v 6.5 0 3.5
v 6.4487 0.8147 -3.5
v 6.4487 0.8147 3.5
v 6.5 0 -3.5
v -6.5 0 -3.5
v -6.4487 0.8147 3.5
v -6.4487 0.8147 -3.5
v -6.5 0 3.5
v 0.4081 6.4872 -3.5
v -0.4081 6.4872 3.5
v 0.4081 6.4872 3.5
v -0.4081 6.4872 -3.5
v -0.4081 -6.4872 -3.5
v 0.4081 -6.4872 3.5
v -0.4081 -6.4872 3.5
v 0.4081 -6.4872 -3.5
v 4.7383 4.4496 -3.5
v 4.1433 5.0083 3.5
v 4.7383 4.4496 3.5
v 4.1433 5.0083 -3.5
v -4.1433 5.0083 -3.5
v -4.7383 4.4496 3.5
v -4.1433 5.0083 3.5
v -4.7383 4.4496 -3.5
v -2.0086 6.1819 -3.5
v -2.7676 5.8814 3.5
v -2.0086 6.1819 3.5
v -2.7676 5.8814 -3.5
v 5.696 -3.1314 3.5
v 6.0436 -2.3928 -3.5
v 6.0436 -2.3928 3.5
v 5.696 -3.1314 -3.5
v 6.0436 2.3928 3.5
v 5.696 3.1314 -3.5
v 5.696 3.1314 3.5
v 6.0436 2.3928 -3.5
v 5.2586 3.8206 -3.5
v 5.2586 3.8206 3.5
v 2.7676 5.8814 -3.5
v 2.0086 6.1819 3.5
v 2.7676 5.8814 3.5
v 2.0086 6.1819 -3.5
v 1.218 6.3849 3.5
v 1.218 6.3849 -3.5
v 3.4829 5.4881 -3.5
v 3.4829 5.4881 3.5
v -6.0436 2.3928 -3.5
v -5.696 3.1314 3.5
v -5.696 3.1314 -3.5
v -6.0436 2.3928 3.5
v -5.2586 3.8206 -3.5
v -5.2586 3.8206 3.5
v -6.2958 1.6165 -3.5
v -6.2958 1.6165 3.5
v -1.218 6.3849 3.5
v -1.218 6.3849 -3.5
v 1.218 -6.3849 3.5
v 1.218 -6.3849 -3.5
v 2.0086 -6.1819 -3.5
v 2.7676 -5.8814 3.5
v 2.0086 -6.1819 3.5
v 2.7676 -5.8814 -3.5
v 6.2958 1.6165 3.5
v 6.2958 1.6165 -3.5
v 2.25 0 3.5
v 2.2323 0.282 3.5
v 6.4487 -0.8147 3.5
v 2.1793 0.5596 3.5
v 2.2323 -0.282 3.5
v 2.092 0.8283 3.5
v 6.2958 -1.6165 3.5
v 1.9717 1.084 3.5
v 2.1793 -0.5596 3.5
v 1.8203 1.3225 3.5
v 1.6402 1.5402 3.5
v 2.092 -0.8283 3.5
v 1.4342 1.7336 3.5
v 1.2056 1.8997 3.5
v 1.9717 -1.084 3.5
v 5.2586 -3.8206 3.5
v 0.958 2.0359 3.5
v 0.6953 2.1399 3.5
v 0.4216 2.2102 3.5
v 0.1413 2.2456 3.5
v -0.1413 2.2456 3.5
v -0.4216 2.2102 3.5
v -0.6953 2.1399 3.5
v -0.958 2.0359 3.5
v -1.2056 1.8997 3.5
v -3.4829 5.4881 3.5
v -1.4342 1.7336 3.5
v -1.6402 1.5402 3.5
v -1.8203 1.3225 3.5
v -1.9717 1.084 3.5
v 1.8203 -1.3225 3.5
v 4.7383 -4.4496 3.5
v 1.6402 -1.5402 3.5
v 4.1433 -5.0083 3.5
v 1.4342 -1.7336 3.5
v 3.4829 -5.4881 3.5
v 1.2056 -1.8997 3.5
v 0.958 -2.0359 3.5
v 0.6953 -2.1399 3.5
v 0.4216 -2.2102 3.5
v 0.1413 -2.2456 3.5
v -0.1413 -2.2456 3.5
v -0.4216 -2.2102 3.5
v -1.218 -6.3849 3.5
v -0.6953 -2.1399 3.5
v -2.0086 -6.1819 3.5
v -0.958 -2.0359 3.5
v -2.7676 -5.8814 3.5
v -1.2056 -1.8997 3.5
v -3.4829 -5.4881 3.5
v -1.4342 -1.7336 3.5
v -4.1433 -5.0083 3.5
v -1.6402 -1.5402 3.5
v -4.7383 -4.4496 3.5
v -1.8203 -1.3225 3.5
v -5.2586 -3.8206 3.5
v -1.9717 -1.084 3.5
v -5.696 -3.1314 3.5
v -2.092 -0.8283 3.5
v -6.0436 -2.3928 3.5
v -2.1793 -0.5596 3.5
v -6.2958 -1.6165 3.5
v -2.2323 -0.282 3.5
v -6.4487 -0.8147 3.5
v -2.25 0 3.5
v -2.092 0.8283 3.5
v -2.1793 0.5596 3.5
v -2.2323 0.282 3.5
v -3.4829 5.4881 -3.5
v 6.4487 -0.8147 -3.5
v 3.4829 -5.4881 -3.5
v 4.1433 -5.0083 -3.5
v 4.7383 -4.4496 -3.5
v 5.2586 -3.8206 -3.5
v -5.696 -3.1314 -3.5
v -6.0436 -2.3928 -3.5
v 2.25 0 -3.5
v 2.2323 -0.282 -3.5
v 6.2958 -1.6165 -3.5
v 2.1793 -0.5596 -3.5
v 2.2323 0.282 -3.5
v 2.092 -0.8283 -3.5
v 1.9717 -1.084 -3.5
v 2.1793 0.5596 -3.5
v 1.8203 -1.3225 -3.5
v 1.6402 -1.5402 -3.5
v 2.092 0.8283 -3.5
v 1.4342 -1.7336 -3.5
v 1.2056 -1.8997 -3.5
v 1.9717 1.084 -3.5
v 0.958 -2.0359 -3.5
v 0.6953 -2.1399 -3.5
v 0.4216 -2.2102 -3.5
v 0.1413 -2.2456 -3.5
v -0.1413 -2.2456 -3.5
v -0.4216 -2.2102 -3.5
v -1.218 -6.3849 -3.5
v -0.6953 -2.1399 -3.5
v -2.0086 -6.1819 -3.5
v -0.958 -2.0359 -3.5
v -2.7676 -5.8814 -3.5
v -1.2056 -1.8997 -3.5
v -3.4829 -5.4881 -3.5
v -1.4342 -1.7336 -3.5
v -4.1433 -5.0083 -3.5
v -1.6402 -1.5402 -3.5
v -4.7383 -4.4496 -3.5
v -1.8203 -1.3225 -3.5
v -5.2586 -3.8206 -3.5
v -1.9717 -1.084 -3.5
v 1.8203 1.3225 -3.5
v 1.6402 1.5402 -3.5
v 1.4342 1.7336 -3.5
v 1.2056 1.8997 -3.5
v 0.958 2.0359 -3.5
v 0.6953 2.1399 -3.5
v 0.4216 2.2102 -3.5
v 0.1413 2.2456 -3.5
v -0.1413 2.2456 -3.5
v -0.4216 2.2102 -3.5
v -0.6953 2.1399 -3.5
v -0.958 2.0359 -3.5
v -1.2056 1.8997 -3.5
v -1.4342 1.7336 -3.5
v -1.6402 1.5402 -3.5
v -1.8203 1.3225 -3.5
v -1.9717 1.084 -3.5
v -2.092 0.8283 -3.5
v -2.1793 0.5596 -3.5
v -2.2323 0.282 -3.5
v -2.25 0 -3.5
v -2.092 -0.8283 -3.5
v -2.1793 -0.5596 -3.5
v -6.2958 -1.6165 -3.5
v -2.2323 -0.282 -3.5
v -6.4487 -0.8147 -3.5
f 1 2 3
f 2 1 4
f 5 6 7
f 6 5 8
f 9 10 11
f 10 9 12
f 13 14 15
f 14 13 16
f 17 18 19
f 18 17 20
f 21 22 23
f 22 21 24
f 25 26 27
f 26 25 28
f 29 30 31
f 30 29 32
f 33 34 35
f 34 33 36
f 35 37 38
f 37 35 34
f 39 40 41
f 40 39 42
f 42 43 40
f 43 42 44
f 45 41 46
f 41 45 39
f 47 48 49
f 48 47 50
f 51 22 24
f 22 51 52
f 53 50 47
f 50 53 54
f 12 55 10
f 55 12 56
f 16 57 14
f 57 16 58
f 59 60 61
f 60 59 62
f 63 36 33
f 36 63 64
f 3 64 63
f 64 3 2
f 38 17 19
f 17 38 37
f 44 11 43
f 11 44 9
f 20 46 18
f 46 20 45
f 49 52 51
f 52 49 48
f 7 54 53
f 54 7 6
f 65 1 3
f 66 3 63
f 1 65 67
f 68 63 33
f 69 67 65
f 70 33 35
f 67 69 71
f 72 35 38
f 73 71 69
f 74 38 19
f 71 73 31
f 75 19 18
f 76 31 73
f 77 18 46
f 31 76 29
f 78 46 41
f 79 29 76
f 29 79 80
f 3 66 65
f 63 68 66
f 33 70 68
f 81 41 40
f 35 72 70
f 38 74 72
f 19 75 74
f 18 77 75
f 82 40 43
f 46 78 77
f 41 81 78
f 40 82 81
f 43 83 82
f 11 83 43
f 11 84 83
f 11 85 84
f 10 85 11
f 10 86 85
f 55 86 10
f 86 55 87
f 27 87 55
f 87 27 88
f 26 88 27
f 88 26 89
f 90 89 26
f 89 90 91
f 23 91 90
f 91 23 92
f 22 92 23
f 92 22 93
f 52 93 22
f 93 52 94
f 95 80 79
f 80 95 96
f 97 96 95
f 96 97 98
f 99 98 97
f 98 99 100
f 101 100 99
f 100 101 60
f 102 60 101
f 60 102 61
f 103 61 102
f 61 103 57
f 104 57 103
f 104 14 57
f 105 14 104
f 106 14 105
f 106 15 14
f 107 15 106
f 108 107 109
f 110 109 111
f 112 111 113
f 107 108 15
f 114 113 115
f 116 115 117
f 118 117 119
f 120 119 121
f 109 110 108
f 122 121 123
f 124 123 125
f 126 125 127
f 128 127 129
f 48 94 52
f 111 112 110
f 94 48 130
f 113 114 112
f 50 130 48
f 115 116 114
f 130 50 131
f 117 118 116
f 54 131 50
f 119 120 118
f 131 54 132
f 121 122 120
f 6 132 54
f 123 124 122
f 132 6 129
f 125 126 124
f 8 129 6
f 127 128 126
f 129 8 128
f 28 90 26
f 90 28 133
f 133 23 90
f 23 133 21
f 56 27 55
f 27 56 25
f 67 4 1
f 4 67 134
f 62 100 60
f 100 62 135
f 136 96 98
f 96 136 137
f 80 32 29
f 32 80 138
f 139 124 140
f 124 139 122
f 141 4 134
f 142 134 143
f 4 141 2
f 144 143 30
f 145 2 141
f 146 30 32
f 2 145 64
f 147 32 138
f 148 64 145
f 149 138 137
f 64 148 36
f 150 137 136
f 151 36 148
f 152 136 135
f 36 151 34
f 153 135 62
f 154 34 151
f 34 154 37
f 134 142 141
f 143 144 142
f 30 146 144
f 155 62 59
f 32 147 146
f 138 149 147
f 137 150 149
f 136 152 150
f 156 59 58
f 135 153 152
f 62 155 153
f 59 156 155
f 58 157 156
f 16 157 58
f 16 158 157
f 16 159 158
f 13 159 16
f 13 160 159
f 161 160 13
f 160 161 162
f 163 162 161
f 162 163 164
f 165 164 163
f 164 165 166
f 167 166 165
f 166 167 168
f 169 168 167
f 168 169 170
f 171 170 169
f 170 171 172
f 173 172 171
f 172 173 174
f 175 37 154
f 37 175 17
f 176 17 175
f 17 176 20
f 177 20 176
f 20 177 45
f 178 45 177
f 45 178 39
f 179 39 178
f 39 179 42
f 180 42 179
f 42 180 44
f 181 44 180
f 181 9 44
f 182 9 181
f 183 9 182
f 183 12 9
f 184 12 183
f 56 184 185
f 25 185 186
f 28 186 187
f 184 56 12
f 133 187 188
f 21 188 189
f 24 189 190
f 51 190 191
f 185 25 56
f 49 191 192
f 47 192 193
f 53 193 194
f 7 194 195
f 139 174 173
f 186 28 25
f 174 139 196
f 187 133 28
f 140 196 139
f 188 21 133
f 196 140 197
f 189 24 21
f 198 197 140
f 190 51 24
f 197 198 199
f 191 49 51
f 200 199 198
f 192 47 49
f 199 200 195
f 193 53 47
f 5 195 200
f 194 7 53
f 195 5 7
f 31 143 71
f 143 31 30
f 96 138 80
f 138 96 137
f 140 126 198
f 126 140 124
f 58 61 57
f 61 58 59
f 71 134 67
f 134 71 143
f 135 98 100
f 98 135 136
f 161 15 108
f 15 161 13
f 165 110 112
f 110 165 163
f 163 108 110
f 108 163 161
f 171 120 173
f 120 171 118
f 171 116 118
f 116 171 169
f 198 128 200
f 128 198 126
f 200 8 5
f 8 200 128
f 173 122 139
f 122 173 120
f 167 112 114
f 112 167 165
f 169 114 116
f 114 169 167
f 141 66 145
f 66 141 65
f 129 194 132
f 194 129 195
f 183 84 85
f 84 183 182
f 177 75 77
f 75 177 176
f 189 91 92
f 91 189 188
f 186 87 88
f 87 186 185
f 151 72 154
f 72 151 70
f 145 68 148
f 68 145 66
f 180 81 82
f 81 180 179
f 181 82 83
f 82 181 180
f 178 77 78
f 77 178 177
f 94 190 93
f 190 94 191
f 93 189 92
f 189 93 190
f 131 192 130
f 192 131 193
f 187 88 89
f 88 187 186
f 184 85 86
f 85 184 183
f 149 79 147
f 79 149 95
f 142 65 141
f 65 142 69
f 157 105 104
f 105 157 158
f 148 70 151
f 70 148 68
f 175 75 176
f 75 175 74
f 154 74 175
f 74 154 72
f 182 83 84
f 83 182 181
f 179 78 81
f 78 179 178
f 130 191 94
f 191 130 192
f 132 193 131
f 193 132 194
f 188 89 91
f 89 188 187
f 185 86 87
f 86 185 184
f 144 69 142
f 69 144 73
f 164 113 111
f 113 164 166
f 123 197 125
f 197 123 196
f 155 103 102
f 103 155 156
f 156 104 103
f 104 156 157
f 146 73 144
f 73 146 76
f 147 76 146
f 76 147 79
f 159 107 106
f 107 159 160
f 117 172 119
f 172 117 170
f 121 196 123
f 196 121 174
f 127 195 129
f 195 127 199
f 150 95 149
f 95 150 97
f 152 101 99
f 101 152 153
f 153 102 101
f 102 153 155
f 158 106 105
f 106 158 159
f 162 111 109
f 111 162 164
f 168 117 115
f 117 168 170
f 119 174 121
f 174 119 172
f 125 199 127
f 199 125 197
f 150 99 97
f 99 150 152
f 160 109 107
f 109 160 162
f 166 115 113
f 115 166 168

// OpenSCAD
$fn = 50;


difference() {
	union() {
		translate(v = [0, 0, -3.5000000000]) {
			cylinder(h = 7, r = 6.5000000000);
		}
	}
	union() {
		translate(v = [0, 0, -100.0000000000]) {
			cylinder(h = 200, r = 2.2500000000);
		}
	}
}
